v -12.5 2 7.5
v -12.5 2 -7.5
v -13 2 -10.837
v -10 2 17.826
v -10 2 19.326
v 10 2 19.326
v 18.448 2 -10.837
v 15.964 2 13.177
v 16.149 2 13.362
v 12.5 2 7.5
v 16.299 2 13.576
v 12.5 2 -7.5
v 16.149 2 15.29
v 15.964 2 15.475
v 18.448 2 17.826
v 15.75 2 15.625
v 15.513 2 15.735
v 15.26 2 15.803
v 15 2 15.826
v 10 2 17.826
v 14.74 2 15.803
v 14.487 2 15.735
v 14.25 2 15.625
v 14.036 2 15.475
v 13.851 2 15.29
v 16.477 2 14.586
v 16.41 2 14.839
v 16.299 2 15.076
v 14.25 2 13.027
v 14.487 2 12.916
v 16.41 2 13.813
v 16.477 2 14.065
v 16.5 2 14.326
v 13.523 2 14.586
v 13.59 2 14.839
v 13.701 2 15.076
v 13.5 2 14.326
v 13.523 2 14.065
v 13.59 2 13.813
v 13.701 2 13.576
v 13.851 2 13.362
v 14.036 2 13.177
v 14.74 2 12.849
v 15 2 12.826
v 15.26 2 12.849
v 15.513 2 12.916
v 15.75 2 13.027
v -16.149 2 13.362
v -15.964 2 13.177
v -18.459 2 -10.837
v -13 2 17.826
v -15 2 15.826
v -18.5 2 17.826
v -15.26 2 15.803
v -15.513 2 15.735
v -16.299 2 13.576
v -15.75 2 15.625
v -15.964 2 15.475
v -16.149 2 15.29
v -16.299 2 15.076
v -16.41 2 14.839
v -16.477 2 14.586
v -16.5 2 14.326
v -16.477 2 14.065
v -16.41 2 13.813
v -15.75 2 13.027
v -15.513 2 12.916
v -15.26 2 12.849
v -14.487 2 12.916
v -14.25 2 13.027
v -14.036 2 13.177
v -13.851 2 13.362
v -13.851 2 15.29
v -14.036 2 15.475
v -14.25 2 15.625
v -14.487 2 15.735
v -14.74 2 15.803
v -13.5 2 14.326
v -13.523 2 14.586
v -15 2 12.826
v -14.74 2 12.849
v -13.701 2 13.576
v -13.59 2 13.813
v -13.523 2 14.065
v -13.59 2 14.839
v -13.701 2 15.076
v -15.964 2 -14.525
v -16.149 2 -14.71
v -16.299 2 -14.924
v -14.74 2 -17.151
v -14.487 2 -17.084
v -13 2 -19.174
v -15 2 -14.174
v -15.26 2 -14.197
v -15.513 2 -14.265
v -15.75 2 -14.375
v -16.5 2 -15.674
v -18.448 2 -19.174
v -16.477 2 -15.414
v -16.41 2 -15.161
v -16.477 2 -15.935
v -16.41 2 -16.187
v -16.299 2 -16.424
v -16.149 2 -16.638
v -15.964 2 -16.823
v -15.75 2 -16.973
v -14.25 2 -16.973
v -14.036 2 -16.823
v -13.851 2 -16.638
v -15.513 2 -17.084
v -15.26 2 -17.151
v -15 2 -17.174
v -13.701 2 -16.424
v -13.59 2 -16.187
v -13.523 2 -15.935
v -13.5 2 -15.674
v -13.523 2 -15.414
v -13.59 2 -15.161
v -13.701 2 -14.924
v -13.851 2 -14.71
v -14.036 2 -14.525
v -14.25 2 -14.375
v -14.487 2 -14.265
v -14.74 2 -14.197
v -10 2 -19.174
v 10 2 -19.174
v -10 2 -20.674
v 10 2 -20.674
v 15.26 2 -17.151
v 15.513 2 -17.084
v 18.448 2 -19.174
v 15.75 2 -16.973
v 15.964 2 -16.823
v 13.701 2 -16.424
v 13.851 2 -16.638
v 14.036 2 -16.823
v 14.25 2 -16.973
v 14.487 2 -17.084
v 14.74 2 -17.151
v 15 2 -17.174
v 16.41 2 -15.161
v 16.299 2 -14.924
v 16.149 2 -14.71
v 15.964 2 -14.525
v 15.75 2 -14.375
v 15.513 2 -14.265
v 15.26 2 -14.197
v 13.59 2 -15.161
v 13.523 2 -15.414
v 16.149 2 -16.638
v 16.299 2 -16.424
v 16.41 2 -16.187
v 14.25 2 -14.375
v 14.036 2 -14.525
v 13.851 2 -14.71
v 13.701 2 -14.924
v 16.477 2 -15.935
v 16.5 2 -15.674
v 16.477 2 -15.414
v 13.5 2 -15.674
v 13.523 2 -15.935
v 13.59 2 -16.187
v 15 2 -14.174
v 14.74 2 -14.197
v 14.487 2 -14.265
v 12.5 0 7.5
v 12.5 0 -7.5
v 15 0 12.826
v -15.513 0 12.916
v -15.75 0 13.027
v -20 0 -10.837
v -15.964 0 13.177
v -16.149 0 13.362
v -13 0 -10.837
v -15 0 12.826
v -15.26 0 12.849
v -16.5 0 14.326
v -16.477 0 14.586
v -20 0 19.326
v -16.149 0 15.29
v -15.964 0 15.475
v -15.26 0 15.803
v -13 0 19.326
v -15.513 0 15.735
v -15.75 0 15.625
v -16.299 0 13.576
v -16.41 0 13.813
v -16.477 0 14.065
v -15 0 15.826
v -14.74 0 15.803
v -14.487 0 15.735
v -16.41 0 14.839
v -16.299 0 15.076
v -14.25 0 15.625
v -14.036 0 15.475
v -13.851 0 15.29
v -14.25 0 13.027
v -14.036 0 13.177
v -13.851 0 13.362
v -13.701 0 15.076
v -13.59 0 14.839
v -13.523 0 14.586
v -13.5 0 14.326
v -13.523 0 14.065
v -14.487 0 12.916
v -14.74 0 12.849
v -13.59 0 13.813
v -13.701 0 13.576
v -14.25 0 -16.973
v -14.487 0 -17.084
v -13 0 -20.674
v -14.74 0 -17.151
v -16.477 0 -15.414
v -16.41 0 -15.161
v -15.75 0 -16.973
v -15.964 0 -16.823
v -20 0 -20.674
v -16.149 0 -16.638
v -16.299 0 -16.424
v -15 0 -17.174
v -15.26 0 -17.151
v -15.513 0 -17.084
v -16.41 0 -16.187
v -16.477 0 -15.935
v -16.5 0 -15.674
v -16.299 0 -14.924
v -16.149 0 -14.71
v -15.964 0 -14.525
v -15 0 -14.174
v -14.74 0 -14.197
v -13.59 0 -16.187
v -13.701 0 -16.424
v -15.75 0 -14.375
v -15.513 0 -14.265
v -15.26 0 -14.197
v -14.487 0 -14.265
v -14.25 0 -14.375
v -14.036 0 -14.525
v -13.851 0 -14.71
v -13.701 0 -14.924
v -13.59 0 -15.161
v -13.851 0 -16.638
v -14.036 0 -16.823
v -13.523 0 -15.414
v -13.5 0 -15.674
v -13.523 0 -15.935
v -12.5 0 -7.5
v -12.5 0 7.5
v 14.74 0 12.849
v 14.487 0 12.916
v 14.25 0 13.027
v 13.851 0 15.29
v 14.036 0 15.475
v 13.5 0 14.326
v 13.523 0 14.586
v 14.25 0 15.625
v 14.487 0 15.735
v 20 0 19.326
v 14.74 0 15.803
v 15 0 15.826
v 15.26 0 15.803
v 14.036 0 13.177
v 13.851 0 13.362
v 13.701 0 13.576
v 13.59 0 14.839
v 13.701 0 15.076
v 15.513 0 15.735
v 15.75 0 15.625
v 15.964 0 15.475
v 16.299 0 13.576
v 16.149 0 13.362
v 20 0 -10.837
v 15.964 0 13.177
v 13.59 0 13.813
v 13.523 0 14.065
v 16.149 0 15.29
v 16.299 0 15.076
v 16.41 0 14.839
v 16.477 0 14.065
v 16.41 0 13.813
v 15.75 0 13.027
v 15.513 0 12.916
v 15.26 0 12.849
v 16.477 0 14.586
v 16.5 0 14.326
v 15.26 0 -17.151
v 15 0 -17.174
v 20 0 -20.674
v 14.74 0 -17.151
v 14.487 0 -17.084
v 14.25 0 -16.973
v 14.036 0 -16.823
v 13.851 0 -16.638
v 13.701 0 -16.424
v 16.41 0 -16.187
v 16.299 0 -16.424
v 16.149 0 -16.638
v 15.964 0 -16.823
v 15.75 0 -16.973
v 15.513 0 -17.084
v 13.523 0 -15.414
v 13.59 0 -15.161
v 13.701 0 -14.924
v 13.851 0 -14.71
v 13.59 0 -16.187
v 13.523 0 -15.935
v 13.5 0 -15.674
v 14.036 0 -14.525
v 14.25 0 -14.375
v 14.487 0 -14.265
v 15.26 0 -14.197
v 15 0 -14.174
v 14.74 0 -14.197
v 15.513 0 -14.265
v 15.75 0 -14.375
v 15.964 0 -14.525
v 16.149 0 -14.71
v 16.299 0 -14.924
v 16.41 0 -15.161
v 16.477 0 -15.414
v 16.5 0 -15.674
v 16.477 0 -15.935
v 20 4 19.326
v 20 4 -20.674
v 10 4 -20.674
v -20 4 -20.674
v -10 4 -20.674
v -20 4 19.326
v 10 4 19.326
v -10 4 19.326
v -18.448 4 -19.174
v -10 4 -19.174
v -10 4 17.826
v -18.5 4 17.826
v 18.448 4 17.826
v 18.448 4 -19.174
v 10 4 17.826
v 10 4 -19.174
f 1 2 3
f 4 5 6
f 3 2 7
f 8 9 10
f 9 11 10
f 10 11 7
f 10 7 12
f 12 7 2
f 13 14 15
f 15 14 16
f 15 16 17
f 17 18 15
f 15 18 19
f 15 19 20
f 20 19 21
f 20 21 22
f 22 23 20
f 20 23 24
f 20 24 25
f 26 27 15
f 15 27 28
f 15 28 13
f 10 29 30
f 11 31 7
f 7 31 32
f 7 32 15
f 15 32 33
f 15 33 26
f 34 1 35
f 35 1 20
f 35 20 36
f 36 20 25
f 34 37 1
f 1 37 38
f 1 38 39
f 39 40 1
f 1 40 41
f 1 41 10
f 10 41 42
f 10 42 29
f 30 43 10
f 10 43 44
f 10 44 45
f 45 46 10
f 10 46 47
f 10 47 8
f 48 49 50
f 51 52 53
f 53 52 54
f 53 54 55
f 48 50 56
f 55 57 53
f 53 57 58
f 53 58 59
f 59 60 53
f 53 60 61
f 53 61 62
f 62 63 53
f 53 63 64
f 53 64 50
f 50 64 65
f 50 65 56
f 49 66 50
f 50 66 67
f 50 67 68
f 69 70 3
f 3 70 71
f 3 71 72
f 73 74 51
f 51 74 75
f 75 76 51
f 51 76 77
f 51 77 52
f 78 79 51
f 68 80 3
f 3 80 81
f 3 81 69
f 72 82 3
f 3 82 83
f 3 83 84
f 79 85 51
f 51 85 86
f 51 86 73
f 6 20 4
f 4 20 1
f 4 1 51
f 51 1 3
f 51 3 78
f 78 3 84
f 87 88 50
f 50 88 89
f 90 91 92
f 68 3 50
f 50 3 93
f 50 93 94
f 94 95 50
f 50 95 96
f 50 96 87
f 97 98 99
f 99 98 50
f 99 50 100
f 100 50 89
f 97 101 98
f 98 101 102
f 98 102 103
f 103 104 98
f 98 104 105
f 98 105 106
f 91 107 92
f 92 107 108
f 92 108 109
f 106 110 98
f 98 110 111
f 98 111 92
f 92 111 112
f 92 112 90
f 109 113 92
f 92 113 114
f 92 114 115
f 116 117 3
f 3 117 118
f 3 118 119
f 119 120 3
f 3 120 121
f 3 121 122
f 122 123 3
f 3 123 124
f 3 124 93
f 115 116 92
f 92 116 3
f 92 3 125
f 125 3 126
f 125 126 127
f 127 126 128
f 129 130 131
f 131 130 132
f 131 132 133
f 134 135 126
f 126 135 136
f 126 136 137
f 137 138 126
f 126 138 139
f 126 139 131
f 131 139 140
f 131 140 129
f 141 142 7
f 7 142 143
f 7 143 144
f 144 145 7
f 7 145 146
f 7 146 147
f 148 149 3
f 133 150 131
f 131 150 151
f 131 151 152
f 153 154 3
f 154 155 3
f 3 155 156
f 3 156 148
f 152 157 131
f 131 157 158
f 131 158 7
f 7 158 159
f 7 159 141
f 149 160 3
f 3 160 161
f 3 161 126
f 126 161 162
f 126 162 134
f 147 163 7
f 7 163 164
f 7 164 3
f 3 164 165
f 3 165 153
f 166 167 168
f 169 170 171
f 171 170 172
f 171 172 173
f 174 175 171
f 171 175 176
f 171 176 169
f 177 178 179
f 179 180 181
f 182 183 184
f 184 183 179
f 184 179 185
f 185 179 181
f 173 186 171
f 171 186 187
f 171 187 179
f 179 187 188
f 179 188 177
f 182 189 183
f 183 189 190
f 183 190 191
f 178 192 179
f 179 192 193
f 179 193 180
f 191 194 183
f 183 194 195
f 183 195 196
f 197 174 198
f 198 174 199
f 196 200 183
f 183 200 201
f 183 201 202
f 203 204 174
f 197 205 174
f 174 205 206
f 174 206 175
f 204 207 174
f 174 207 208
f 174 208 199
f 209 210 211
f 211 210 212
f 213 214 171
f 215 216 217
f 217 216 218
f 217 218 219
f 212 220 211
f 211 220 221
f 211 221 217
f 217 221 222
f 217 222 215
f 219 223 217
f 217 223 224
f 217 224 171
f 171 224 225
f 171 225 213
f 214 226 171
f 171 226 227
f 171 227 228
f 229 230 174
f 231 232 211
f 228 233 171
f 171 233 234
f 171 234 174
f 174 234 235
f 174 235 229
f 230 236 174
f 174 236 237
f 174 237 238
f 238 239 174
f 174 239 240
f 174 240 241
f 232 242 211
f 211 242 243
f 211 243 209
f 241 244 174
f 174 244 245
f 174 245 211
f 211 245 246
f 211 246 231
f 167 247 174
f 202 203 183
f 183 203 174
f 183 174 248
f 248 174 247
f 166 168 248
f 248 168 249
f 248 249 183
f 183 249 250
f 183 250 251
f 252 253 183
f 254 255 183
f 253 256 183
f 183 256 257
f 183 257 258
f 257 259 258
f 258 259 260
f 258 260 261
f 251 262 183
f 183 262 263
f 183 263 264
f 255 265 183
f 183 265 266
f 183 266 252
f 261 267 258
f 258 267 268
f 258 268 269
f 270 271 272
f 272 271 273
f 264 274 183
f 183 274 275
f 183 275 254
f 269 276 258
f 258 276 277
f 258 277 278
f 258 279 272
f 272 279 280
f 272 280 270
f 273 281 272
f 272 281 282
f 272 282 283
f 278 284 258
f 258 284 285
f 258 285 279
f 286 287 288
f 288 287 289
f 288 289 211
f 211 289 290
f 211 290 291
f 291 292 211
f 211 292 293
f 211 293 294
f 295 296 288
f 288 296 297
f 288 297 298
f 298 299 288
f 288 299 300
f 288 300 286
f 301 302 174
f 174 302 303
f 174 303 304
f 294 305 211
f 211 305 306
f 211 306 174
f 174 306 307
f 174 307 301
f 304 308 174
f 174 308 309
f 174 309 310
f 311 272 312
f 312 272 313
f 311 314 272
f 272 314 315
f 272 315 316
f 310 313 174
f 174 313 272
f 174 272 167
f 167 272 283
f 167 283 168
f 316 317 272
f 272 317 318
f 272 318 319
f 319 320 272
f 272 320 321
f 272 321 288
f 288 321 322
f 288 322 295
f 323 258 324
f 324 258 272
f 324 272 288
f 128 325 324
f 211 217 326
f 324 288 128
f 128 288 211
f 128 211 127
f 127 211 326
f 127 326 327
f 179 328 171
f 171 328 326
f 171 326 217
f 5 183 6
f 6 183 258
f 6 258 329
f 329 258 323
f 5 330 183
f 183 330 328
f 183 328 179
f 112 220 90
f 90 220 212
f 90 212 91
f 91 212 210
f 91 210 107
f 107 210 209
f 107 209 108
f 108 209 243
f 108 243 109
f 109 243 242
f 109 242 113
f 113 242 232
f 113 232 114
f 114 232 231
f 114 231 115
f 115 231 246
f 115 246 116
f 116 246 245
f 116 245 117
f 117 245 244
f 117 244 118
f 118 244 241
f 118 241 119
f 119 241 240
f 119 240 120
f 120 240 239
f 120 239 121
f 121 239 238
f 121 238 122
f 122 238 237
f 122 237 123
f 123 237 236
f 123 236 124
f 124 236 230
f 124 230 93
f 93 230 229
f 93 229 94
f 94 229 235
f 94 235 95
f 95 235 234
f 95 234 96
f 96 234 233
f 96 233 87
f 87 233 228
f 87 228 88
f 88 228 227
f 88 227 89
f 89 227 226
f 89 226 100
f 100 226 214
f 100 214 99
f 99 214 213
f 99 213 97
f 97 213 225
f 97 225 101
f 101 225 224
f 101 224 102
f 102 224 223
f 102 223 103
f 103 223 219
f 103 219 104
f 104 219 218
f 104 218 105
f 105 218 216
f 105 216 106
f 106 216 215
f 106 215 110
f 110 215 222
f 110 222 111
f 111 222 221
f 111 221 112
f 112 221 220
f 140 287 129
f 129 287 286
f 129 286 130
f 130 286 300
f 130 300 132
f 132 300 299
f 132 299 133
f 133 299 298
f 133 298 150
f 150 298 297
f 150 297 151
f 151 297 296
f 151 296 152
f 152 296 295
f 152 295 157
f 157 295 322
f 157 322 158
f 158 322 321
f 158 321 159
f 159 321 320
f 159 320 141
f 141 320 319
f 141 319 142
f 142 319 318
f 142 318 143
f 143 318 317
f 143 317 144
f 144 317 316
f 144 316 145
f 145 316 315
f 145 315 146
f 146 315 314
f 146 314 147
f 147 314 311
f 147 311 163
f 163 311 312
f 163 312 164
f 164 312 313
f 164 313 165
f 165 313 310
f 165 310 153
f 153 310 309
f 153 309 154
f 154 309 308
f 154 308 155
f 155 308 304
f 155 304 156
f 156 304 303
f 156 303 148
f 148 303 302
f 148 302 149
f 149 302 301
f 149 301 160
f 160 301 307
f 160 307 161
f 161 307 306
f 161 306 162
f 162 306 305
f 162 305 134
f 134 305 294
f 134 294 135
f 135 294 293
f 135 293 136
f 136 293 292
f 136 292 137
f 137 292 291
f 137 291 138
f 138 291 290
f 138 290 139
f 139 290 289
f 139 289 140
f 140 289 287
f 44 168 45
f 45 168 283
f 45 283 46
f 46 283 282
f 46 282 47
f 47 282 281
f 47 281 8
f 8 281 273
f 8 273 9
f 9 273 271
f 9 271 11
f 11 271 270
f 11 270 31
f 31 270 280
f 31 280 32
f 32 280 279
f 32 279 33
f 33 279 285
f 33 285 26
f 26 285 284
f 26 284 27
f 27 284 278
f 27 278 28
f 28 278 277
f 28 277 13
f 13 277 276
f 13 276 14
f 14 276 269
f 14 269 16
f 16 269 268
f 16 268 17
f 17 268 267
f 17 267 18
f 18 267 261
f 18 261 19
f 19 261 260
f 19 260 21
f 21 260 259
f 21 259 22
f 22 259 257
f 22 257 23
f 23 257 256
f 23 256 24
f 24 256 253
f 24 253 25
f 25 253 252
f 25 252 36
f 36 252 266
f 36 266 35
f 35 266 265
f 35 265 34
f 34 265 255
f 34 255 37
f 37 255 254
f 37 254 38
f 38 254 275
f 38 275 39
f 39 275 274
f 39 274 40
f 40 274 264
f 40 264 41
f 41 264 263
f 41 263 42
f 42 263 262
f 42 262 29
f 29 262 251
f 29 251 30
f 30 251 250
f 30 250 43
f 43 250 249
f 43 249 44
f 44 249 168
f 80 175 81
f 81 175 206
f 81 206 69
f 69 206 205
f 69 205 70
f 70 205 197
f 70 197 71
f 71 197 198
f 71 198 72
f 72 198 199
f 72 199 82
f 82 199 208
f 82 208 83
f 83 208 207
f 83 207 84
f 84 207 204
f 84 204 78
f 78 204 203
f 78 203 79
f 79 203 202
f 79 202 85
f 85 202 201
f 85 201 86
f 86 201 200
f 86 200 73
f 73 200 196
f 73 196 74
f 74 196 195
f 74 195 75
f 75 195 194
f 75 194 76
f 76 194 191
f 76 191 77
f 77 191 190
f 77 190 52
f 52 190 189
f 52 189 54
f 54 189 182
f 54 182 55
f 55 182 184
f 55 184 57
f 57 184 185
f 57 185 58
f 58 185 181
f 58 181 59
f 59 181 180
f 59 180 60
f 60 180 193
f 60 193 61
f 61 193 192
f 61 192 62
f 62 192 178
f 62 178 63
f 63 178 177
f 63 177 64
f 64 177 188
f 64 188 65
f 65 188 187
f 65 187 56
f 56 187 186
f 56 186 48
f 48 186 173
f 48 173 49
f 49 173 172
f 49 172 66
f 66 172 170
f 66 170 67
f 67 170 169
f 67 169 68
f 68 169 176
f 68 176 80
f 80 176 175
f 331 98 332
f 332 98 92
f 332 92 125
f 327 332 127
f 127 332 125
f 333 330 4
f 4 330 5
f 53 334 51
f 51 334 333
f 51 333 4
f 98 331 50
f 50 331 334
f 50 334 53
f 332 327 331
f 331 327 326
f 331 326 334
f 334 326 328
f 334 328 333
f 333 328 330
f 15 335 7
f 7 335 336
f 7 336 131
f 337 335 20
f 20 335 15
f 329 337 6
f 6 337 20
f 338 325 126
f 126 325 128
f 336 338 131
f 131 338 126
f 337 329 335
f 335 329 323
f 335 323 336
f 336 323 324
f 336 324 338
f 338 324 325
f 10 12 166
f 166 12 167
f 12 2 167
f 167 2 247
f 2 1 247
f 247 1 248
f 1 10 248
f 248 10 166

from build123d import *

# Parameters (mm, degrees)
SKETCH1_W           = 40
SKETCH1_H           = 40
SKETCH1_R           = 1.5
BOSS_EXTRUDE1_DEPTH = 2
BOSS_EXTRUDE2_DEPTH = 2
SKETCH3_W           = 25
SKETCH3_H           = 15
CUT_EXTRUDE1_DEPTH  = 2


with BuildPart() as part:
    # Sketch1 → Boss-Extrude1 (new body)
    with BuildSketch(Plane(origin=(0, 0, 0), x_dir=(1, 0, 0), z_dir=(0, 1, 0))):
        with Locations((0, 0.674157303)):
            Rectangle(SKETCH1_W, SKETCH1_H)
        with Locations(Location((-15, 15.674157303, 0), (0, 0, 270))):
            Circle(SKETCH1_R, mode=Mode.SUBTRACT)
        with Locations(Location((15, 15.674157303, 0), (0, 0, 270))):
            Circle(SKETCH1_R, mode=Mode.SUBTRACT)
        with Locations(Location((15, -14.325842697, 0), (0, 0, 90))):
            Circle(SKETCH1_R, mode=Mode.SUBTRACT)
        with Locations(Location((-15, -14.325842697, 0), (0, 0, 90))):
            Circle(SKETCH1_R, mode=Mode.SUBTRACT)
    extrude(amount=BOSS_EXTRUDE1_DEPTH)

    # Sketch2 → Boss-Extrude2 (add)
    with BuildSketch(Plane(origin=(0, 2, 0), x_dir=(1, 0, 0), z_dir=(0, 1, 0))):
        Polygon((-10, 19.174157303), (-10, 20.674157303), (-20, 20.674157303), (-20, -19.325842697), (-10, -19.325842697), (-10, -17.825842697), (-18.447674419, -17.825842697), (-18.499771919, -17.825842697), (-18.447674419, 19.174157303), align=None)
        Polygon((10, -19.325842697), (10, -17.825842697), (18.447674419, -17.825842697), (18.447674419, 19.174157303), (10, 19.174157303), (10, 20.674157303), (20, 20.674157303), (20, -19.325842697), align=None)
    extrude(amount=BOSS_EXTRUDE2_DEPTH)

    # Sketch3 → Cut-Extrude1 (cut)
    with BuildSketch(Plane.XZ):
        Rectangle(SKETCH3_W, SKETCH3_H)
    extrude(amount=-CUT_EXTRUDE1_DEPTH, mode=Mode.SUBTRACT)


solid = part.part
